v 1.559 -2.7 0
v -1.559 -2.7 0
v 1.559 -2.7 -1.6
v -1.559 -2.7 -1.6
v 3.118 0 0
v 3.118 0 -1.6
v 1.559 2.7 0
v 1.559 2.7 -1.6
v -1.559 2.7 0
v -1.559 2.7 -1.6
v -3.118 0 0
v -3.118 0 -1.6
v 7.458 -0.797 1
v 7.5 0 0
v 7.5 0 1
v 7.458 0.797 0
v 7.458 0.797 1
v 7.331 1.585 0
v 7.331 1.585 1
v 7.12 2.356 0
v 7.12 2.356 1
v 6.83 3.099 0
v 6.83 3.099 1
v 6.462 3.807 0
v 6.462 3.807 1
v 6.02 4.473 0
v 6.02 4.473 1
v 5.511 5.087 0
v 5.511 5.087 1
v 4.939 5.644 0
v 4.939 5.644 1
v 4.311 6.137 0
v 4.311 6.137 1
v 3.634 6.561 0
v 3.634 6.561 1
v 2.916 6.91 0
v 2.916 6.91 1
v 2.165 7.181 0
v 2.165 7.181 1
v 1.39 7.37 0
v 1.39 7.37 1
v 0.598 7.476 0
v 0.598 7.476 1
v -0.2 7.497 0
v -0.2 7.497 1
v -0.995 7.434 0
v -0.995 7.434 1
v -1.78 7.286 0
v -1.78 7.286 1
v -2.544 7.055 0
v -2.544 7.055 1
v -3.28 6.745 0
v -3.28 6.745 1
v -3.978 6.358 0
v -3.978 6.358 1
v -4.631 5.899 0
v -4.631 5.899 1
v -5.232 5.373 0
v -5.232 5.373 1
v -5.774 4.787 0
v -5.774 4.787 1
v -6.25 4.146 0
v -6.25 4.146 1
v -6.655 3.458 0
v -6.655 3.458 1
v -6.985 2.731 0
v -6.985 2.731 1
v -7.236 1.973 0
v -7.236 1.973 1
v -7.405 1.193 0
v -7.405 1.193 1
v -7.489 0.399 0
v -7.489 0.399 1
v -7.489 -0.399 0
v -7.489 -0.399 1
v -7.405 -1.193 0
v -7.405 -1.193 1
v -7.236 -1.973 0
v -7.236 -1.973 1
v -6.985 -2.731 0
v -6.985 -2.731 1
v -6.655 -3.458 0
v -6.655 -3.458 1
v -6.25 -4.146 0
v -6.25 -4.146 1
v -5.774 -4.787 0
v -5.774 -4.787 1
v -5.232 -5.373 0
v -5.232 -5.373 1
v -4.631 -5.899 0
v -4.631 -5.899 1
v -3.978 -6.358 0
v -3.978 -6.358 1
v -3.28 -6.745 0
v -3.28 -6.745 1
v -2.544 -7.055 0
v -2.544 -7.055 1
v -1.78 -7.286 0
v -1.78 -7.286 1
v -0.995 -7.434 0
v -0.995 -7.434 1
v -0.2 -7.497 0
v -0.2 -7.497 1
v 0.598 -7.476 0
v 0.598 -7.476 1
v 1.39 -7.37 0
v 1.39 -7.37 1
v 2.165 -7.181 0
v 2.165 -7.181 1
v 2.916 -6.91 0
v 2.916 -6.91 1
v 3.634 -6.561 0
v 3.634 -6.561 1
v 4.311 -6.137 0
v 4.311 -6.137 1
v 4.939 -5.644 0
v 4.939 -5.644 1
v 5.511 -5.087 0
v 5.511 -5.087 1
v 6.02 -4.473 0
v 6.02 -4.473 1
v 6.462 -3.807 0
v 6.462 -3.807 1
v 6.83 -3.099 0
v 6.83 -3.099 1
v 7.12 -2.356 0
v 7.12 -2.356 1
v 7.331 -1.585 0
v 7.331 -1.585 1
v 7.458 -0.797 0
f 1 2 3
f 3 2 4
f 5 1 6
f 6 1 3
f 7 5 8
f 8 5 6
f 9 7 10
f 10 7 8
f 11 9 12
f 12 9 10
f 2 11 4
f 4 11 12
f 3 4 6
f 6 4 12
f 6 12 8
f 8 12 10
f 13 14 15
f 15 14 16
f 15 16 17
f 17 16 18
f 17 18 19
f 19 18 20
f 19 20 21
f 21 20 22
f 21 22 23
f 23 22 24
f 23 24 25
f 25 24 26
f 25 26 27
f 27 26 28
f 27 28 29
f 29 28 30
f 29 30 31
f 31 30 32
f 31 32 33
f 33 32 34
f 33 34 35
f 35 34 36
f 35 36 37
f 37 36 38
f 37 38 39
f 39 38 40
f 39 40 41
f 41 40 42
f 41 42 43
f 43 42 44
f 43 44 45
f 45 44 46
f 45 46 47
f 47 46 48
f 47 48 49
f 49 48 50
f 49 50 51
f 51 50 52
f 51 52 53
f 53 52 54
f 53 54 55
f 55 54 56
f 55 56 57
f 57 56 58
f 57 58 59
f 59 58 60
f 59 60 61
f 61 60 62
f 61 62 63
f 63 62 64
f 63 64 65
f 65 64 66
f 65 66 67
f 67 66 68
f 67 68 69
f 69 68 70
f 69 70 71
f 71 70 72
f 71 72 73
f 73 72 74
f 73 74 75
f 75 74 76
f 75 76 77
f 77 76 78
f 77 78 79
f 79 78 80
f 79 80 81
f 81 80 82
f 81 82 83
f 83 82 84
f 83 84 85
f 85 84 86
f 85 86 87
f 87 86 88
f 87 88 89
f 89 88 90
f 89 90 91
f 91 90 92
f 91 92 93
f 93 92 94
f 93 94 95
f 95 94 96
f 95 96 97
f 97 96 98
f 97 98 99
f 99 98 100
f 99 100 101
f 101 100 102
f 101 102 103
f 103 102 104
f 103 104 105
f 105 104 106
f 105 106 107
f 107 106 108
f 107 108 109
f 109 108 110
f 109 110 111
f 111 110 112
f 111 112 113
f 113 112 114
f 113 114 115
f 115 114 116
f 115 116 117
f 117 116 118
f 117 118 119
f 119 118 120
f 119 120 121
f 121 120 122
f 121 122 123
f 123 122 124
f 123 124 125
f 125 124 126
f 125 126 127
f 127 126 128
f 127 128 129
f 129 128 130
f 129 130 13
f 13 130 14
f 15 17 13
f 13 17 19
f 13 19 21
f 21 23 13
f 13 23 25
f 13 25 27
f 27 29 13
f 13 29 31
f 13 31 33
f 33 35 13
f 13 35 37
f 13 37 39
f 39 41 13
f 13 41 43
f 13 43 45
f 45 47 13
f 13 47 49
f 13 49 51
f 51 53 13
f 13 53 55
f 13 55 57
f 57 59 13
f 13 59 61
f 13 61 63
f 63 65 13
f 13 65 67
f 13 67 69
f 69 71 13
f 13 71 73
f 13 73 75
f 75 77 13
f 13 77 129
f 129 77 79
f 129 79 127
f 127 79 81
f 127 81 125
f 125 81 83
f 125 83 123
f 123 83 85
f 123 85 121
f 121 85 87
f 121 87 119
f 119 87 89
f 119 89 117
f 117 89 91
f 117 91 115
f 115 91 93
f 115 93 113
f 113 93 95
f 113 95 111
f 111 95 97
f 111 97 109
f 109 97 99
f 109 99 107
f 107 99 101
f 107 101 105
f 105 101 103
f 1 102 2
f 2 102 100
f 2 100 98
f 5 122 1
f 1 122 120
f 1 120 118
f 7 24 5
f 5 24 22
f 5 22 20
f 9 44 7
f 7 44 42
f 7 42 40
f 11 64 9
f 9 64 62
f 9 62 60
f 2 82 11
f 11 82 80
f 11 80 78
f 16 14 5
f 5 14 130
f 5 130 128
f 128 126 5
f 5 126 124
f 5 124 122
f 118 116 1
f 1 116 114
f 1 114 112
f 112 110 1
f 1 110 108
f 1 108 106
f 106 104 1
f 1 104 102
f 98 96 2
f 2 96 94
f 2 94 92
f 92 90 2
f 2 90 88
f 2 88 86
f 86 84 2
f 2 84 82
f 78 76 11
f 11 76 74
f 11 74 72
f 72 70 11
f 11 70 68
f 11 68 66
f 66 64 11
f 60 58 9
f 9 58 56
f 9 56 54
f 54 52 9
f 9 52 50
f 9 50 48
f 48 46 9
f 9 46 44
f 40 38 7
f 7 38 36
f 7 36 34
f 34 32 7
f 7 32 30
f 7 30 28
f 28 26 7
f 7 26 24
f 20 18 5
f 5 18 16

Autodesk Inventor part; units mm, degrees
ref_plane "YZ Plane" through (0, 0, 0) normal (1, 0, 0) x (0, 1, 0)
ref_plane "XZ Plane" through (0, 0, 0) normal (0, 1, 0) x (-1, 0, 0)
ref_plane "XY Plane" through (0, 0, 0) normal (0, 0, 1) x (1, 0, 0)
sketch "Boceto1" plane through (0, 0, 0) normal (0, 0, 1) x (1, 0, 0)
  line L0 (-3.4064, 0) -> (-1.7032, 2.95) projected
  line L1 (-1.7032, 2.95) -> (1.7032, 2.95) projected
  line L2 (1.7032, 2.95) -> (3.4064, 0) projected
  line L3 (3.4064, 0) -> (1.7032, -2.95) projected
  line L4 (1.7032, -2.95) -> (-1.7032, -2.95) projected
  line L5 (-1.7032, -2.95) -> (-3.4064, 0) projected
  circle A0 centre (0, 0) radius 7.5 projected
extrude "Extrusión1" add sketch "Boceto1" along normal blind 1 contours L0 L1 L2 L3 L4 L5 | A0
sketch "Boceto2" plane through (0, 0, 0) normal (0, 0, -1) x (-1, 0, 0)
  circle A0 centre (0, 0) radius 7.5 projected
  circle A1 centre (0, 0) radius 1.5 projected
  line L0 (1.7032, -2.95) -> (3.4064, 0) projected
  line L1 (3.4064, 0) -> (1.7032, 2.95) projected
  line L2 (1.7032, 2.95) -> (-1.7032, 2.95) projected
  line L3 (-1.7032, 2.95) -> (-3.4064, 0) projected
  line L4 (-3.4064, 0) -> (-1.7032, -2.95) projected
  line L5 (-1.7032, -2.95) -> (1.7032, -2.95) projected
  line L6 (-1.5588, -2.7) -> (-3.1177, 0)
  line L7 (-3.1177, 0) -> (-1.5588, 2.7)
  line L8 (-1.5588, 2.7) -> (1.5588, 2.7)
  line L9 (1.5588, 2.7) -> (3.1177, 0)
  line L10 (3.1177, 0) -> (1.5588, -2.7)
  line L11 (1.5588, -2.7) -> (-1.5588, -2.7)
  dimension "d2" = 0.25
extrude "Extrusión2" add sketch "Boceto2" along normal blind 1.6 contours A1 | L6 L7 L8 L9 L10 L11
properties part number "Tapa_Cabeza_Tornillo"
